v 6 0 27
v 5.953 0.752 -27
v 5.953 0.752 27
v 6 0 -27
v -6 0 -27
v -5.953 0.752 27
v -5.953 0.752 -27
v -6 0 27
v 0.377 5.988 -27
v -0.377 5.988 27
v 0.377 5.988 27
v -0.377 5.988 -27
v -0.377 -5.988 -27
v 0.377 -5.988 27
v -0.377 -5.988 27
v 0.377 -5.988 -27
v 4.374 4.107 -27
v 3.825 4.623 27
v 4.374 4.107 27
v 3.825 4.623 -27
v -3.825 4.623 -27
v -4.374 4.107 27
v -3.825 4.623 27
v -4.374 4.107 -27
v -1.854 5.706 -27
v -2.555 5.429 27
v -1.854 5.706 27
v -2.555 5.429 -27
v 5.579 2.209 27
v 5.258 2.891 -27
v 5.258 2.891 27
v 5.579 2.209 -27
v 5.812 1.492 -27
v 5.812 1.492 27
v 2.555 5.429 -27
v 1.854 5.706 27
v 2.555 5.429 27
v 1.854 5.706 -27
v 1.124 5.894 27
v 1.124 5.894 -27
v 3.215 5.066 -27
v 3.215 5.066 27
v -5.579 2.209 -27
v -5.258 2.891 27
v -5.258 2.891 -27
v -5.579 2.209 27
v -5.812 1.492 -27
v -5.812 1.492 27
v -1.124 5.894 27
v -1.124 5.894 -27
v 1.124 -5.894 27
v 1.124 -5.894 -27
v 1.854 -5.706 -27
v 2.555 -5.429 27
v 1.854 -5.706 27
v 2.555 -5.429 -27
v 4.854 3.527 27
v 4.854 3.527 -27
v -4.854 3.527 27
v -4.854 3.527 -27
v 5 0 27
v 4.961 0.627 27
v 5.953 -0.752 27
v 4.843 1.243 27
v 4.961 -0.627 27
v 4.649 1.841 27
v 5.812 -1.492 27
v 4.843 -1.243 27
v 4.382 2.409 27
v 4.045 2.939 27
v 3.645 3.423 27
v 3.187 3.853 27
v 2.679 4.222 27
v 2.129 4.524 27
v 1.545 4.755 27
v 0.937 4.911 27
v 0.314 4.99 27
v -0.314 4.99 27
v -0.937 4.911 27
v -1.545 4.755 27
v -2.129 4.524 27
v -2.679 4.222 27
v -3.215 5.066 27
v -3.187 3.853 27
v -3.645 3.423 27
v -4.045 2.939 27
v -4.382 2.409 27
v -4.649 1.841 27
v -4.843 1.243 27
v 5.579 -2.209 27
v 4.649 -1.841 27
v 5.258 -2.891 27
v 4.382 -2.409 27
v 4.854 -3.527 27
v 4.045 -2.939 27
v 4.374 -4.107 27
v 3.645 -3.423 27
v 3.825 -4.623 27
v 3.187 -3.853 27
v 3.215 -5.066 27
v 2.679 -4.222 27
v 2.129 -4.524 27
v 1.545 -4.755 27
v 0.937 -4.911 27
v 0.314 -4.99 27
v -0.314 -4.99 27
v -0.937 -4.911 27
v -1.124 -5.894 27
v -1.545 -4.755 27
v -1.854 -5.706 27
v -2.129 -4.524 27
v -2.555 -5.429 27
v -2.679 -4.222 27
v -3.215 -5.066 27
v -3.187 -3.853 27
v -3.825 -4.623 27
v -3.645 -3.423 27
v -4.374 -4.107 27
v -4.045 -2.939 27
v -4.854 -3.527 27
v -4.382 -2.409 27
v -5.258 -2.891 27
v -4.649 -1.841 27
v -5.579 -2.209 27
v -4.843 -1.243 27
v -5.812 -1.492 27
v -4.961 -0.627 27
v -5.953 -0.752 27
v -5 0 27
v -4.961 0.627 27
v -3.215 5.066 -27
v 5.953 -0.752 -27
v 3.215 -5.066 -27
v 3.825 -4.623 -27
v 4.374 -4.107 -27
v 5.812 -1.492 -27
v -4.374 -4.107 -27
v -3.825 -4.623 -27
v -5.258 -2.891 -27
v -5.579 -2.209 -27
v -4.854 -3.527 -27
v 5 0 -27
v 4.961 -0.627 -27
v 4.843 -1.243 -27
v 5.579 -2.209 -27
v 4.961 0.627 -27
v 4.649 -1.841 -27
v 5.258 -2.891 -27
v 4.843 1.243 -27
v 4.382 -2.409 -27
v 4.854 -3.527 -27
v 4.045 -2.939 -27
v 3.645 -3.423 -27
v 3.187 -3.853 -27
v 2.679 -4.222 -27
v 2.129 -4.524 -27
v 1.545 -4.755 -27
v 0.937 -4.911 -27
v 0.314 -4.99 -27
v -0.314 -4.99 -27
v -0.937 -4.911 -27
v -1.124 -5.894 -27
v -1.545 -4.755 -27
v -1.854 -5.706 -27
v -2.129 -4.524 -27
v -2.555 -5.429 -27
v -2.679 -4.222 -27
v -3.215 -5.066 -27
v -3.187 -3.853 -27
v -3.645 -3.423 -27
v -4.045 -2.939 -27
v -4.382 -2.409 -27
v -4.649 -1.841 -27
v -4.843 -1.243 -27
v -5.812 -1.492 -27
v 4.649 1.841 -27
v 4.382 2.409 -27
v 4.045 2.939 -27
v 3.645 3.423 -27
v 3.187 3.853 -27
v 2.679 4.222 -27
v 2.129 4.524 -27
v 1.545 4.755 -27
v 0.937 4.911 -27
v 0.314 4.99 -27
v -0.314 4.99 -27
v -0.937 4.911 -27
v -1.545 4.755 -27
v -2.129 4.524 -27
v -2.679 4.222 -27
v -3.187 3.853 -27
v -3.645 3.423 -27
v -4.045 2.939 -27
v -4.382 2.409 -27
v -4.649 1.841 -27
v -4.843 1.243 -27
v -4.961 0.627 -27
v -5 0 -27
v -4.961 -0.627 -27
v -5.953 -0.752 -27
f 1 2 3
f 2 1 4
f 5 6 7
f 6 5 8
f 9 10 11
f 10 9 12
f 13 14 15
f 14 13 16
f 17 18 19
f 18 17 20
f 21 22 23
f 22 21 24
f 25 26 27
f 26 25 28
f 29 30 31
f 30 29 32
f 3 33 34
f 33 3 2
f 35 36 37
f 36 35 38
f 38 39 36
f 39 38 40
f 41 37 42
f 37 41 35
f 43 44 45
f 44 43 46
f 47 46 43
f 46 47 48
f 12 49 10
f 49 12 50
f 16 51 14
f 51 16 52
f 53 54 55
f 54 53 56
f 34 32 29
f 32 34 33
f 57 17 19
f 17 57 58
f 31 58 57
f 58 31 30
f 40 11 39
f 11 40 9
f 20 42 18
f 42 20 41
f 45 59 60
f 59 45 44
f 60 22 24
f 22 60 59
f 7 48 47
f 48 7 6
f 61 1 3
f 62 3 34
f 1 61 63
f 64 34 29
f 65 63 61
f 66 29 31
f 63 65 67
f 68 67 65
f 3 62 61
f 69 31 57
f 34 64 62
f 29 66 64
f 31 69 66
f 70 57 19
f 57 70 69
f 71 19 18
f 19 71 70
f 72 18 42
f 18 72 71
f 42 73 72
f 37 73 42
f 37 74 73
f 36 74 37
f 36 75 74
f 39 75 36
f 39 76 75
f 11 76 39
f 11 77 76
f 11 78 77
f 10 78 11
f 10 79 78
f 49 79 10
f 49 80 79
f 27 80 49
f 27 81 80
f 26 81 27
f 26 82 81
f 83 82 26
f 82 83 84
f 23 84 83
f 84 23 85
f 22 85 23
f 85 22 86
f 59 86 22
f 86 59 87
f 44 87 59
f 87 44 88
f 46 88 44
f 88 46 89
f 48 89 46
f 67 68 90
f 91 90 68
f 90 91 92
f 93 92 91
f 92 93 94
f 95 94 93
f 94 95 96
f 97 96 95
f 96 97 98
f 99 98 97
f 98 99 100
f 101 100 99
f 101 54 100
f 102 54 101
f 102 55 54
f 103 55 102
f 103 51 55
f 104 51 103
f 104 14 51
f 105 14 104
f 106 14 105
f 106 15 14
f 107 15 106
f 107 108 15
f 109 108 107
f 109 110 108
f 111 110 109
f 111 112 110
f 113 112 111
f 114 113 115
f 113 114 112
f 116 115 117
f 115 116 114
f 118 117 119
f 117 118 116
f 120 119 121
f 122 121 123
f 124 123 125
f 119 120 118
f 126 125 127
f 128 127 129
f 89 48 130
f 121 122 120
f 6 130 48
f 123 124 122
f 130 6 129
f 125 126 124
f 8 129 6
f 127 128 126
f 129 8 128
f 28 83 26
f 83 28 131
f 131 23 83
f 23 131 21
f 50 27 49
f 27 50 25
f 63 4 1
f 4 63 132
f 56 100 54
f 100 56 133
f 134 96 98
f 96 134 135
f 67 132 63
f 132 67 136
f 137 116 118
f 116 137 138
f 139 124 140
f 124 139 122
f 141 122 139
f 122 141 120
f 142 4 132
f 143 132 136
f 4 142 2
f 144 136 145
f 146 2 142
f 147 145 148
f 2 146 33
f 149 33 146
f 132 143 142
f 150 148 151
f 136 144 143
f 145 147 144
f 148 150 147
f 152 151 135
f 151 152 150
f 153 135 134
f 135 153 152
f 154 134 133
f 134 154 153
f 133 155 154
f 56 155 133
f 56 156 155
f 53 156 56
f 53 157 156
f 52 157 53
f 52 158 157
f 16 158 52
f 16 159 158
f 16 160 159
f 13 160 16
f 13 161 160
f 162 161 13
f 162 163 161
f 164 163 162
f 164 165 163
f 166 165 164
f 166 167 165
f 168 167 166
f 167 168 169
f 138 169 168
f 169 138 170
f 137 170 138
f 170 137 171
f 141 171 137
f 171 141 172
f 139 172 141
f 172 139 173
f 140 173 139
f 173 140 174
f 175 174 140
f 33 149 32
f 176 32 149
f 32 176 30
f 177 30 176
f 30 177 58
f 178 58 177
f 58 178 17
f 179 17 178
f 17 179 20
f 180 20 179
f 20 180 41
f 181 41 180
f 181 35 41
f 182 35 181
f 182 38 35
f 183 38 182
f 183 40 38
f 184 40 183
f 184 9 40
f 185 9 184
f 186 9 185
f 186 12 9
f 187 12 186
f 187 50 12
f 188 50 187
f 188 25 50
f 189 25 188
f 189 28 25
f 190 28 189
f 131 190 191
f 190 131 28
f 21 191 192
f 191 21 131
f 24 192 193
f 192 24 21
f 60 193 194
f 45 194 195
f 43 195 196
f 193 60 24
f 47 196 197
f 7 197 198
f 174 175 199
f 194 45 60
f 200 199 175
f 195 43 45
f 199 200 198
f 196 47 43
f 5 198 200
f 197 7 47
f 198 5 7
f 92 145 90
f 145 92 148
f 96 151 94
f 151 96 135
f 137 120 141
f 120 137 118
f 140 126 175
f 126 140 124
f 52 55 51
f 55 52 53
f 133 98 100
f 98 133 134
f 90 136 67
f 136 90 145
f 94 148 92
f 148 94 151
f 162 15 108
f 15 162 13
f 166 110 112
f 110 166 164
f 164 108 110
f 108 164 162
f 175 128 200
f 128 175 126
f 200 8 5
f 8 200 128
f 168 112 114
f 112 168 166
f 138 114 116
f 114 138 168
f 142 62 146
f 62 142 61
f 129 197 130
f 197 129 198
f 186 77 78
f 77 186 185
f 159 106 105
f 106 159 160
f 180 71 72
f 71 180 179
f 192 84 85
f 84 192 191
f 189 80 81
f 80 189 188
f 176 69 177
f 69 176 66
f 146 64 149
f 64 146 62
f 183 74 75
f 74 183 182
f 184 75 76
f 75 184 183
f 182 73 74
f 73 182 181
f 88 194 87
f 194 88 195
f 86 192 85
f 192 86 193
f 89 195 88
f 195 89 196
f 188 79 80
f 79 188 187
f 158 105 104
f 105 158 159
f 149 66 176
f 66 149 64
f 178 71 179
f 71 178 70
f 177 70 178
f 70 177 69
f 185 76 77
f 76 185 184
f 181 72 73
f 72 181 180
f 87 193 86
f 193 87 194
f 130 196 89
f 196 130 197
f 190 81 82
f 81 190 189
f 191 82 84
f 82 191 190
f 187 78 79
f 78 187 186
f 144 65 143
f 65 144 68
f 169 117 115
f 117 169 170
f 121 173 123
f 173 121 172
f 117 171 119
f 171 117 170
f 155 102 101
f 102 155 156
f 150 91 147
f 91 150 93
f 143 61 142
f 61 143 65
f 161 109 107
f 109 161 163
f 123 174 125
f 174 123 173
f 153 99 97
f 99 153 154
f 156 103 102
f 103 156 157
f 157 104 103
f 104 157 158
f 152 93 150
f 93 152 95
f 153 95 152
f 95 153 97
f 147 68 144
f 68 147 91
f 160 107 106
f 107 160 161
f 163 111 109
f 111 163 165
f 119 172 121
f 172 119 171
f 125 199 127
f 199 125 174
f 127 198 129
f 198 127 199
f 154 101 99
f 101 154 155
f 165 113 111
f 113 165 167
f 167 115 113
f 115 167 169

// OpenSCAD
$fn = 50;


difference() {
	union() {
		translate(v = [0, 0, -27.0000000000]) {
			cylinder(h = 54, r = 6.0000000000);
		}
	}
	union() {
		translate(v = [0, 0, -100.0000000000]) {
			cylinder(h = 200, r = 5);
		}
	}
}
